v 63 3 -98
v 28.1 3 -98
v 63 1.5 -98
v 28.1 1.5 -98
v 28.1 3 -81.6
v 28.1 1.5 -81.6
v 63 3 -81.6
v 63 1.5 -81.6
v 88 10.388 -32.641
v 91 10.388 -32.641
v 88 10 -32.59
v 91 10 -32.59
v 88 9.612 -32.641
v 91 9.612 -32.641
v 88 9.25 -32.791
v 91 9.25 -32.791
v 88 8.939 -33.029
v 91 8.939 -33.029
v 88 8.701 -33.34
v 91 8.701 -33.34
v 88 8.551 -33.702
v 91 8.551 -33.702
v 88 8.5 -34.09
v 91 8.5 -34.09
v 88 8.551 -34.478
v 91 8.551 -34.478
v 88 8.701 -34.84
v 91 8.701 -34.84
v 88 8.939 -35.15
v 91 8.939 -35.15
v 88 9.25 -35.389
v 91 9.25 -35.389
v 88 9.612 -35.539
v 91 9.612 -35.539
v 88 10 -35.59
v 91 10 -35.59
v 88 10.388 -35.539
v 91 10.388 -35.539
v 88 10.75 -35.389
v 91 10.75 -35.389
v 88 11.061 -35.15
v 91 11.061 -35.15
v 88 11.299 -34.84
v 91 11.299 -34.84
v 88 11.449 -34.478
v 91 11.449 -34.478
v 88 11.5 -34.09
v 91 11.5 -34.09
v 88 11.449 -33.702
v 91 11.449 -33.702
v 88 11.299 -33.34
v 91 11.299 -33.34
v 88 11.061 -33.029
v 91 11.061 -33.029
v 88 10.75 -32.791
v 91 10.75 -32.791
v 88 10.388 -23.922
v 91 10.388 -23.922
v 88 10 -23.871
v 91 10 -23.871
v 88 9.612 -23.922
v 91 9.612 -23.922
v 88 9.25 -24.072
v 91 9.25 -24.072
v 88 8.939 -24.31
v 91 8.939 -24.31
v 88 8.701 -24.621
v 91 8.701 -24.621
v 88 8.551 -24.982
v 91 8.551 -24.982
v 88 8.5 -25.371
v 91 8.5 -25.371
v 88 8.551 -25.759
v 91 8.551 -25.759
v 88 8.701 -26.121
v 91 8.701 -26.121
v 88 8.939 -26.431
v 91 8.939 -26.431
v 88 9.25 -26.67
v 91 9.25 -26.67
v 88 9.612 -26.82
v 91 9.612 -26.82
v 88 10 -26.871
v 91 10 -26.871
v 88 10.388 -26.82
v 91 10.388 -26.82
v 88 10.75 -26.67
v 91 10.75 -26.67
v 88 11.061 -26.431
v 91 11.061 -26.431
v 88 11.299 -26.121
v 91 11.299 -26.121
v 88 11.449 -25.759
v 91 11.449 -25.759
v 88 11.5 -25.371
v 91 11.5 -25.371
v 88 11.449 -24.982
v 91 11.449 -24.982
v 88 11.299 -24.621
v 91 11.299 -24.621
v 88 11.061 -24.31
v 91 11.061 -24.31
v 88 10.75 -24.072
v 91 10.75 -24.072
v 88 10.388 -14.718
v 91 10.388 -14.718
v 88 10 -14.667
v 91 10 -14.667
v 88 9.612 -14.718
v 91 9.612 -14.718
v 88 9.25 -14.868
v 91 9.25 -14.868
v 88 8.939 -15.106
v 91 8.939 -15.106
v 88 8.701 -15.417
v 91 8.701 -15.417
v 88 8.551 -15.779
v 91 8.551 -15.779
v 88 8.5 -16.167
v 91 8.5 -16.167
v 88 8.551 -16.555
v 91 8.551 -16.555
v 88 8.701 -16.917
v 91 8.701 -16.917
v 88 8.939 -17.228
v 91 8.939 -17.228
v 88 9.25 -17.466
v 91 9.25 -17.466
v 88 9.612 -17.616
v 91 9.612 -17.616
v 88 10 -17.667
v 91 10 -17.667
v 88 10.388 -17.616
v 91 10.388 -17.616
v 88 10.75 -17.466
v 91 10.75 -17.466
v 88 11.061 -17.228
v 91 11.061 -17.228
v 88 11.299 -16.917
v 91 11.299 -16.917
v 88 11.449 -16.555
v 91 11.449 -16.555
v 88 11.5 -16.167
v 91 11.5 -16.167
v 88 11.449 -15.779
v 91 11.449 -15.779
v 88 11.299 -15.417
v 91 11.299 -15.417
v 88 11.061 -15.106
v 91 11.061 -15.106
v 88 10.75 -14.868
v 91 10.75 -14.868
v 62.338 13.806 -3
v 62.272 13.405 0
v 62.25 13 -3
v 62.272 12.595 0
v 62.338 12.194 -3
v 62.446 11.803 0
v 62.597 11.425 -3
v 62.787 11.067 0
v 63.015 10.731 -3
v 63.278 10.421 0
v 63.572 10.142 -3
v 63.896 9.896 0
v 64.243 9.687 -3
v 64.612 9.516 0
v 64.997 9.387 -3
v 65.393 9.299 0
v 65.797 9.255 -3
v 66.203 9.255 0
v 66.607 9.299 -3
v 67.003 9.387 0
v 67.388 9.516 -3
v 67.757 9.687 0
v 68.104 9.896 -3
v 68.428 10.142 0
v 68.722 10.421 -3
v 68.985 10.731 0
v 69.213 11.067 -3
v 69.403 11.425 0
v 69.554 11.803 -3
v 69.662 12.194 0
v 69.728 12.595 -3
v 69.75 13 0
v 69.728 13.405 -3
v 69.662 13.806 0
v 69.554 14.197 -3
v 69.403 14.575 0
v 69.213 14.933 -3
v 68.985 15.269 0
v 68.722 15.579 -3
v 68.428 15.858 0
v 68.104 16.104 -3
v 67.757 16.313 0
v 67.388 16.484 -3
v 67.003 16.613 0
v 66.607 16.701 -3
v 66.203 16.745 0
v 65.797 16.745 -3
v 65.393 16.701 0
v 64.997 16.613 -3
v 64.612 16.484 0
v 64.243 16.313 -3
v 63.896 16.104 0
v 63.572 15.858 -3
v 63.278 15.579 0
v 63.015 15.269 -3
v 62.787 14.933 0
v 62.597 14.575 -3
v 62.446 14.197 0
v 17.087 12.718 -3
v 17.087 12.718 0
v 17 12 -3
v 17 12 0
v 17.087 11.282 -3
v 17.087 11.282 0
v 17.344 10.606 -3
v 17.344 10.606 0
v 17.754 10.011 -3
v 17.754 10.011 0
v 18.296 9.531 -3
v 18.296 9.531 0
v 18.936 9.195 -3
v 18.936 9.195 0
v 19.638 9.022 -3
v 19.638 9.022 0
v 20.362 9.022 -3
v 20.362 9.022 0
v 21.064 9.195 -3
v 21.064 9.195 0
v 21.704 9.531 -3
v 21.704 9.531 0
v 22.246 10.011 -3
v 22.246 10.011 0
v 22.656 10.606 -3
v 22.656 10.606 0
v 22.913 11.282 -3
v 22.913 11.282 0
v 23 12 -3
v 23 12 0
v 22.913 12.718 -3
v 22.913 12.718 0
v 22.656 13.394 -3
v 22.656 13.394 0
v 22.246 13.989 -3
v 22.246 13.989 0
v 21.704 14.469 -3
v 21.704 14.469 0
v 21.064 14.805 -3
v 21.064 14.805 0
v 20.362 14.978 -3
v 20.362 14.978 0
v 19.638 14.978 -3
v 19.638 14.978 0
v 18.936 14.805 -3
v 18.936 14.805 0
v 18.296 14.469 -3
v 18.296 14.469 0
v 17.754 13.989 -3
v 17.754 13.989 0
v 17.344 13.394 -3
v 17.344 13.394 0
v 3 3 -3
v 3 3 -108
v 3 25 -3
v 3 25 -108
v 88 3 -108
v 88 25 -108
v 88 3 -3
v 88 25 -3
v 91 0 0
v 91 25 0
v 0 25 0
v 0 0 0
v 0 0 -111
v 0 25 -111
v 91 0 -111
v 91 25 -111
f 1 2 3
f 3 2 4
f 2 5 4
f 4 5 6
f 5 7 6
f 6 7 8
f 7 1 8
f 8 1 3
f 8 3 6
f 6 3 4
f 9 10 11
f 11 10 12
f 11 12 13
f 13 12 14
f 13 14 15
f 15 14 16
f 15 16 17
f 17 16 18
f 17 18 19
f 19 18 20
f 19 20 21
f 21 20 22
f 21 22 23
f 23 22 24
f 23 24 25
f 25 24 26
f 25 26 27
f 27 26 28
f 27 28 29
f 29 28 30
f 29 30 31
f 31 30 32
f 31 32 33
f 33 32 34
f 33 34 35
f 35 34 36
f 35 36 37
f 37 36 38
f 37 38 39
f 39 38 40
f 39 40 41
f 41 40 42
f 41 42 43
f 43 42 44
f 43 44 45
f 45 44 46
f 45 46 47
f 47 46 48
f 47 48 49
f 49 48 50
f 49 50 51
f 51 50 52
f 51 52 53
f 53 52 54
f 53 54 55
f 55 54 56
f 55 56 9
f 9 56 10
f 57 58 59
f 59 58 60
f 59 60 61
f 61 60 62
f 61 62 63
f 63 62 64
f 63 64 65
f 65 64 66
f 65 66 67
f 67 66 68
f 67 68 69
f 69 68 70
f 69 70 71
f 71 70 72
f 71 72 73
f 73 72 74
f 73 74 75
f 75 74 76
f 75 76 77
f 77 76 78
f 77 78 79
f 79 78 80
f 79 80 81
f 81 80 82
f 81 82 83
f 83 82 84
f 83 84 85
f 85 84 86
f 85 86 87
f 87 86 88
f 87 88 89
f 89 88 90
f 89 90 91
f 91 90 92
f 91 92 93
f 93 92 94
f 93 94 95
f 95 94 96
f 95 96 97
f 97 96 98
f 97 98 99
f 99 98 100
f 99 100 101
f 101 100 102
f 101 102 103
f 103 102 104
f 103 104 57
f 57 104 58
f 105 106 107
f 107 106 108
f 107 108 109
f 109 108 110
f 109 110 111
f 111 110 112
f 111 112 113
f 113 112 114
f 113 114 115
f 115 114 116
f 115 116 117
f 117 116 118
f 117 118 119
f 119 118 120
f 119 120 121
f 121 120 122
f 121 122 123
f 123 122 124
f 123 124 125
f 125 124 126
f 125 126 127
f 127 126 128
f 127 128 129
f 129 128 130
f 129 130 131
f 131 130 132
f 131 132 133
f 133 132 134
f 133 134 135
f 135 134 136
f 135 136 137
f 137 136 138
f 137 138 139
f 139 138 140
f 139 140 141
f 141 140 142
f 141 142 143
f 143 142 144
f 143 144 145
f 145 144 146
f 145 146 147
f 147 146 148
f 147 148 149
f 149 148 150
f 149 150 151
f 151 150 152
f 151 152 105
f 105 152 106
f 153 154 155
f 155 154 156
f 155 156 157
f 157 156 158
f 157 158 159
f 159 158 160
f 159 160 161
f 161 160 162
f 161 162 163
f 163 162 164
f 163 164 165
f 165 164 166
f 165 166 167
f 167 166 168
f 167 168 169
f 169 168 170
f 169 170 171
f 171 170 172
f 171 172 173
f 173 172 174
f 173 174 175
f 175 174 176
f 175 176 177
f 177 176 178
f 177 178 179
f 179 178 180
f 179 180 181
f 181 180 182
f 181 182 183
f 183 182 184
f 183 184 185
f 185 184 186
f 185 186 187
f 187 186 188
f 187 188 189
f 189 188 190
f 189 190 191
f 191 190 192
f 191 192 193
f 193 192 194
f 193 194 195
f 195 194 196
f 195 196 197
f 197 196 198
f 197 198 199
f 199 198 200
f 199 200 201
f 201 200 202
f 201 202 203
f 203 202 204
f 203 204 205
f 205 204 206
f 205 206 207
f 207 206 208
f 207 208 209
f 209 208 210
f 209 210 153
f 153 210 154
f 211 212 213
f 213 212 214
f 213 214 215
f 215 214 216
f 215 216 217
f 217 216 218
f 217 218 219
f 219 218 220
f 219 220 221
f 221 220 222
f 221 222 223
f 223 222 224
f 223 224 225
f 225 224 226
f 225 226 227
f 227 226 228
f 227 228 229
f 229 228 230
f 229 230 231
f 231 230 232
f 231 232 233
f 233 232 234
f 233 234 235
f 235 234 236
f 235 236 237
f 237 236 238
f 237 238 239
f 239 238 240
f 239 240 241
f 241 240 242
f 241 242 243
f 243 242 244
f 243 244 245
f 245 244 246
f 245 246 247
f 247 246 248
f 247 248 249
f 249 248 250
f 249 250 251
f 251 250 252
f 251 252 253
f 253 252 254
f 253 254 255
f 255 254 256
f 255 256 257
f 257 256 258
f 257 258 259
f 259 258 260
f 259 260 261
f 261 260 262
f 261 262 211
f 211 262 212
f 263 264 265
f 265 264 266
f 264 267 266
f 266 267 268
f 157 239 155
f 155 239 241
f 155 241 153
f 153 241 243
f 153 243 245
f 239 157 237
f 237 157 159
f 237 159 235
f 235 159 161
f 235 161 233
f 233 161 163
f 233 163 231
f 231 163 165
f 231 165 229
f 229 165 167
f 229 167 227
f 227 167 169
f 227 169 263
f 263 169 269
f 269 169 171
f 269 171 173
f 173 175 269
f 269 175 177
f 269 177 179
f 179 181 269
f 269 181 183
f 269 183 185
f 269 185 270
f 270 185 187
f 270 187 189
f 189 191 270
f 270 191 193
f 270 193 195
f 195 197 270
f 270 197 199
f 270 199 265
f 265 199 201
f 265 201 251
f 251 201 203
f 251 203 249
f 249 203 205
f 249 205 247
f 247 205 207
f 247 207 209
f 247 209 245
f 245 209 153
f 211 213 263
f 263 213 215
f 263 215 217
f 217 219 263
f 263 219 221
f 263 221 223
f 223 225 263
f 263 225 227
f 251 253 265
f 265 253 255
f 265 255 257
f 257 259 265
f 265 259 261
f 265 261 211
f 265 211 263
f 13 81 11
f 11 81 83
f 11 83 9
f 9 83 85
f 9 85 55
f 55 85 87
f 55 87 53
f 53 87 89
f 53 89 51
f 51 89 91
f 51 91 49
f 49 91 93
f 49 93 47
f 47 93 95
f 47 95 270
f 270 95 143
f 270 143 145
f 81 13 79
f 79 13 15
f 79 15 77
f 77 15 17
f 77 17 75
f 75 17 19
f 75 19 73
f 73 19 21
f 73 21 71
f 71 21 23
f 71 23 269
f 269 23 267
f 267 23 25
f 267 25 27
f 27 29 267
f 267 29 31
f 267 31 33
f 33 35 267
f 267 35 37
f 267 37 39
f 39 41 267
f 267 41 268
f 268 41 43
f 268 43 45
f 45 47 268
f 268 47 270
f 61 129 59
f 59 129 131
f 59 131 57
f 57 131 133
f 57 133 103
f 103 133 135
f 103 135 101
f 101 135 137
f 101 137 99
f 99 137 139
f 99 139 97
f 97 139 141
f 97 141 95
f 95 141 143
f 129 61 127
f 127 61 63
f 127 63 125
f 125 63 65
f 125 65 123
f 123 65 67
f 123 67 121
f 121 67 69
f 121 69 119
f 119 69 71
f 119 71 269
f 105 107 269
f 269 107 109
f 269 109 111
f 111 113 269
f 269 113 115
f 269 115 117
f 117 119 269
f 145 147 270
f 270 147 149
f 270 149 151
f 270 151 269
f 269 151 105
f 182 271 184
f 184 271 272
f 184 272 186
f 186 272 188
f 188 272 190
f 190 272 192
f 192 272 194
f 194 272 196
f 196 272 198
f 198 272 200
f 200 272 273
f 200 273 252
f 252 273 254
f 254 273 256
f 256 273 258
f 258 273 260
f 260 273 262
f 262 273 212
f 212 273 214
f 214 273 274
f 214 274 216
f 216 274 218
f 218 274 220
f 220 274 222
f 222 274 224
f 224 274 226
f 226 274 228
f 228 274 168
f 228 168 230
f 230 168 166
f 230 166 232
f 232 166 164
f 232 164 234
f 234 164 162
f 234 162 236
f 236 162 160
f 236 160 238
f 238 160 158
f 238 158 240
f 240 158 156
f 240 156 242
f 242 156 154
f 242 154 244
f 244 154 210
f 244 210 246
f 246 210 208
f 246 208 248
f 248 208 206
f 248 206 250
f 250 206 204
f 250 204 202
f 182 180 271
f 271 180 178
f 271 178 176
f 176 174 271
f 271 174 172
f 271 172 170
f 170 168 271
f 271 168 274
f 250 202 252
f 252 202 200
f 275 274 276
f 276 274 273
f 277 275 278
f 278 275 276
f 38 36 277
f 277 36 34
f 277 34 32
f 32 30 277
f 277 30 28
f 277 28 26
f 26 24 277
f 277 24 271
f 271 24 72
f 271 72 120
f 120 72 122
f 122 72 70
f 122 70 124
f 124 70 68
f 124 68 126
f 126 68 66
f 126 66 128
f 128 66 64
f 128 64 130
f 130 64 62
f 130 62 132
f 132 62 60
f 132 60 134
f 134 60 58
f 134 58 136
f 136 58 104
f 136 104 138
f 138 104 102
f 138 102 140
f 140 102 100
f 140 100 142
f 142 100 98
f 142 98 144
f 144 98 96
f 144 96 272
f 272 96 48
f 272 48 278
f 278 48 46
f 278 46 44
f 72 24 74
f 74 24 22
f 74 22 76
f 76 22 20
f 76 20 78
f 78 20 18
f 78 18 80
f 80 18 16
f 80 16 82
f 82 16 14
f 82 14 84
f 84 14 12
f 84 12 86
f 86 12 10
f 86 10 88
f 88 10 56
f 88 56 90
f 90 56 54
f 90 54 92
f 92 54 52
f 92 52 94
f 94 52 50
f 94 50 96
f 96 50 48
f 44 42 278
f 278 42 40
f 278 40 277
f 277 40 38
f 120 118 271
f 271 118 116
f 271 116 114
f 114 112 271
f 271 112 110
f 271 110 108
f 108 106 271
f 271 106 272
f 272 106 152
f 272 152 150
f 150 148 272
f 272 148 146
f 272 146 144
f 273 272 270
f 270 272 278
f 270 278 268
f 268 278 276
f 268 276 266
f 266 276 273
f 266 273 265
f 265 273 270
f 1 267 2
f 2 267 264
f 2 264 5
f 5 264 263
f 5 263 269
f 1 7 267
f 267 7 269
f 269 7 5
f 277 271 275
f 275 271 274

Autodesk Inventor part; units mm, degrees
ref_plane "YZ Plane" through (0, 0, 0) normal (1, 0, 0) x (0, 1, 0)
ref_plane "XZ Plane" through (0, 0, 0) normal (0, 1, 0) x (-1, 0, 0)
ref_plane "XY Plane" through (0, 0, 0) normal (0, 0, 1) x (1, 0, 0)
sketch "Esboço1" plane through (0, 0, 0) normal (0, 1, 0) x (-1, 0, 0)
  line L0 (0, 0) -> (-91, 0)
  line L1 (-91, 0) -> (-91, -111)
  line L2 (-91, -111) -> (0, -111)
  line L3 (0, -111) -> (0, 0)
  line L4 (-3, -108) -> (-88, -108)
  line L5 (-88, -108) -> (-88, -3)
  line L6 (-88, -3) -> (-3, -3)
  line L7 (-3, -3) -> (-3, -108)
  dimension "d0" = 3
  dimension "d1" = 3
  dimension "d2" = 3
  dimension "d3" = 3
  dimension "d4" = 85
  dimension "d5" = 105
extrude "Extrusão1" add sketch "Esboço1" along normal blind 3 contours L4 L5 L6 L7
extrude "Extrusão2" add sketch "Esboço1" along normal blind 25
sketch "Esboço2" plane through (0, 0, 0) normal (0, 0, 1) x (1, 0, 0)
  circle A0 centre (20, 12) radius 3
  circle A1 centre (66, 13) radius 3.75
  line L0 (0, 0) -> (0, 25) projected
  line L1 (91, 0) -> (91, 25) projected
  line L2 (0, 0) -> (91, 0) projected
  point P0 (0, 12.5)
  dimension "d10" = 6
  dimension "d11" = 7.5
  dimension "d25" = 20
  dimension "d26" = 25
  dimension "d30" = 13
  dimension "d31" = 12
extrude "Extrusão3" cut sketch "Esboço2" against normal blind 30
sketch "Esboço3" plane through (91, 0, 0) normal (1, 0, 0) x (0, 0, -1)
  circle A0 centre (16.1671, 10) radius 1.5
  circle A1 centre (34.0898, 10) radius 1.5
  circle A2 centre (25.3707, 10) radius 1.5
  line L0 (0, 0) -> (111, 0) projected
  dimension "d14" = 3
  dimension "d15" = 3
  dimension "d16" = 3
  dimension "d32" = 10
  dimension "d33" = 10
  dimension "d34" = 10
extrude "Extrusão4" cut sketch "Esboço3" against normal blind 10
sketch "Esboço4" plane through (0, 3, 0) normal (0, 1, 0) x (1, 0, 0)
  line L0 (28.1, 81.6) -> (63, 81.6)
  line L1 (63, 81.6) -> (63, 98)
  line L2 (63, 98) -> (28.1, 98)
  line L3 (28.1, 98) -> (28.1, 81.6)
  line L4 (88, 108) -> (88, 3) projected
  line L5 (3, 108) -> (88, 108) projected
  point P0 (0, 0)
  point P1 (63, 89.8)
  dimension "d19" = 34.9
  dimension "d20" = 16.4
  dimension "d23" = 25
  dimension "d24" = 10
extrude "Extrusão5" cut sketch "Esboço4" against normal blind 1.5
properties part number "Caixa_3DPrint"
